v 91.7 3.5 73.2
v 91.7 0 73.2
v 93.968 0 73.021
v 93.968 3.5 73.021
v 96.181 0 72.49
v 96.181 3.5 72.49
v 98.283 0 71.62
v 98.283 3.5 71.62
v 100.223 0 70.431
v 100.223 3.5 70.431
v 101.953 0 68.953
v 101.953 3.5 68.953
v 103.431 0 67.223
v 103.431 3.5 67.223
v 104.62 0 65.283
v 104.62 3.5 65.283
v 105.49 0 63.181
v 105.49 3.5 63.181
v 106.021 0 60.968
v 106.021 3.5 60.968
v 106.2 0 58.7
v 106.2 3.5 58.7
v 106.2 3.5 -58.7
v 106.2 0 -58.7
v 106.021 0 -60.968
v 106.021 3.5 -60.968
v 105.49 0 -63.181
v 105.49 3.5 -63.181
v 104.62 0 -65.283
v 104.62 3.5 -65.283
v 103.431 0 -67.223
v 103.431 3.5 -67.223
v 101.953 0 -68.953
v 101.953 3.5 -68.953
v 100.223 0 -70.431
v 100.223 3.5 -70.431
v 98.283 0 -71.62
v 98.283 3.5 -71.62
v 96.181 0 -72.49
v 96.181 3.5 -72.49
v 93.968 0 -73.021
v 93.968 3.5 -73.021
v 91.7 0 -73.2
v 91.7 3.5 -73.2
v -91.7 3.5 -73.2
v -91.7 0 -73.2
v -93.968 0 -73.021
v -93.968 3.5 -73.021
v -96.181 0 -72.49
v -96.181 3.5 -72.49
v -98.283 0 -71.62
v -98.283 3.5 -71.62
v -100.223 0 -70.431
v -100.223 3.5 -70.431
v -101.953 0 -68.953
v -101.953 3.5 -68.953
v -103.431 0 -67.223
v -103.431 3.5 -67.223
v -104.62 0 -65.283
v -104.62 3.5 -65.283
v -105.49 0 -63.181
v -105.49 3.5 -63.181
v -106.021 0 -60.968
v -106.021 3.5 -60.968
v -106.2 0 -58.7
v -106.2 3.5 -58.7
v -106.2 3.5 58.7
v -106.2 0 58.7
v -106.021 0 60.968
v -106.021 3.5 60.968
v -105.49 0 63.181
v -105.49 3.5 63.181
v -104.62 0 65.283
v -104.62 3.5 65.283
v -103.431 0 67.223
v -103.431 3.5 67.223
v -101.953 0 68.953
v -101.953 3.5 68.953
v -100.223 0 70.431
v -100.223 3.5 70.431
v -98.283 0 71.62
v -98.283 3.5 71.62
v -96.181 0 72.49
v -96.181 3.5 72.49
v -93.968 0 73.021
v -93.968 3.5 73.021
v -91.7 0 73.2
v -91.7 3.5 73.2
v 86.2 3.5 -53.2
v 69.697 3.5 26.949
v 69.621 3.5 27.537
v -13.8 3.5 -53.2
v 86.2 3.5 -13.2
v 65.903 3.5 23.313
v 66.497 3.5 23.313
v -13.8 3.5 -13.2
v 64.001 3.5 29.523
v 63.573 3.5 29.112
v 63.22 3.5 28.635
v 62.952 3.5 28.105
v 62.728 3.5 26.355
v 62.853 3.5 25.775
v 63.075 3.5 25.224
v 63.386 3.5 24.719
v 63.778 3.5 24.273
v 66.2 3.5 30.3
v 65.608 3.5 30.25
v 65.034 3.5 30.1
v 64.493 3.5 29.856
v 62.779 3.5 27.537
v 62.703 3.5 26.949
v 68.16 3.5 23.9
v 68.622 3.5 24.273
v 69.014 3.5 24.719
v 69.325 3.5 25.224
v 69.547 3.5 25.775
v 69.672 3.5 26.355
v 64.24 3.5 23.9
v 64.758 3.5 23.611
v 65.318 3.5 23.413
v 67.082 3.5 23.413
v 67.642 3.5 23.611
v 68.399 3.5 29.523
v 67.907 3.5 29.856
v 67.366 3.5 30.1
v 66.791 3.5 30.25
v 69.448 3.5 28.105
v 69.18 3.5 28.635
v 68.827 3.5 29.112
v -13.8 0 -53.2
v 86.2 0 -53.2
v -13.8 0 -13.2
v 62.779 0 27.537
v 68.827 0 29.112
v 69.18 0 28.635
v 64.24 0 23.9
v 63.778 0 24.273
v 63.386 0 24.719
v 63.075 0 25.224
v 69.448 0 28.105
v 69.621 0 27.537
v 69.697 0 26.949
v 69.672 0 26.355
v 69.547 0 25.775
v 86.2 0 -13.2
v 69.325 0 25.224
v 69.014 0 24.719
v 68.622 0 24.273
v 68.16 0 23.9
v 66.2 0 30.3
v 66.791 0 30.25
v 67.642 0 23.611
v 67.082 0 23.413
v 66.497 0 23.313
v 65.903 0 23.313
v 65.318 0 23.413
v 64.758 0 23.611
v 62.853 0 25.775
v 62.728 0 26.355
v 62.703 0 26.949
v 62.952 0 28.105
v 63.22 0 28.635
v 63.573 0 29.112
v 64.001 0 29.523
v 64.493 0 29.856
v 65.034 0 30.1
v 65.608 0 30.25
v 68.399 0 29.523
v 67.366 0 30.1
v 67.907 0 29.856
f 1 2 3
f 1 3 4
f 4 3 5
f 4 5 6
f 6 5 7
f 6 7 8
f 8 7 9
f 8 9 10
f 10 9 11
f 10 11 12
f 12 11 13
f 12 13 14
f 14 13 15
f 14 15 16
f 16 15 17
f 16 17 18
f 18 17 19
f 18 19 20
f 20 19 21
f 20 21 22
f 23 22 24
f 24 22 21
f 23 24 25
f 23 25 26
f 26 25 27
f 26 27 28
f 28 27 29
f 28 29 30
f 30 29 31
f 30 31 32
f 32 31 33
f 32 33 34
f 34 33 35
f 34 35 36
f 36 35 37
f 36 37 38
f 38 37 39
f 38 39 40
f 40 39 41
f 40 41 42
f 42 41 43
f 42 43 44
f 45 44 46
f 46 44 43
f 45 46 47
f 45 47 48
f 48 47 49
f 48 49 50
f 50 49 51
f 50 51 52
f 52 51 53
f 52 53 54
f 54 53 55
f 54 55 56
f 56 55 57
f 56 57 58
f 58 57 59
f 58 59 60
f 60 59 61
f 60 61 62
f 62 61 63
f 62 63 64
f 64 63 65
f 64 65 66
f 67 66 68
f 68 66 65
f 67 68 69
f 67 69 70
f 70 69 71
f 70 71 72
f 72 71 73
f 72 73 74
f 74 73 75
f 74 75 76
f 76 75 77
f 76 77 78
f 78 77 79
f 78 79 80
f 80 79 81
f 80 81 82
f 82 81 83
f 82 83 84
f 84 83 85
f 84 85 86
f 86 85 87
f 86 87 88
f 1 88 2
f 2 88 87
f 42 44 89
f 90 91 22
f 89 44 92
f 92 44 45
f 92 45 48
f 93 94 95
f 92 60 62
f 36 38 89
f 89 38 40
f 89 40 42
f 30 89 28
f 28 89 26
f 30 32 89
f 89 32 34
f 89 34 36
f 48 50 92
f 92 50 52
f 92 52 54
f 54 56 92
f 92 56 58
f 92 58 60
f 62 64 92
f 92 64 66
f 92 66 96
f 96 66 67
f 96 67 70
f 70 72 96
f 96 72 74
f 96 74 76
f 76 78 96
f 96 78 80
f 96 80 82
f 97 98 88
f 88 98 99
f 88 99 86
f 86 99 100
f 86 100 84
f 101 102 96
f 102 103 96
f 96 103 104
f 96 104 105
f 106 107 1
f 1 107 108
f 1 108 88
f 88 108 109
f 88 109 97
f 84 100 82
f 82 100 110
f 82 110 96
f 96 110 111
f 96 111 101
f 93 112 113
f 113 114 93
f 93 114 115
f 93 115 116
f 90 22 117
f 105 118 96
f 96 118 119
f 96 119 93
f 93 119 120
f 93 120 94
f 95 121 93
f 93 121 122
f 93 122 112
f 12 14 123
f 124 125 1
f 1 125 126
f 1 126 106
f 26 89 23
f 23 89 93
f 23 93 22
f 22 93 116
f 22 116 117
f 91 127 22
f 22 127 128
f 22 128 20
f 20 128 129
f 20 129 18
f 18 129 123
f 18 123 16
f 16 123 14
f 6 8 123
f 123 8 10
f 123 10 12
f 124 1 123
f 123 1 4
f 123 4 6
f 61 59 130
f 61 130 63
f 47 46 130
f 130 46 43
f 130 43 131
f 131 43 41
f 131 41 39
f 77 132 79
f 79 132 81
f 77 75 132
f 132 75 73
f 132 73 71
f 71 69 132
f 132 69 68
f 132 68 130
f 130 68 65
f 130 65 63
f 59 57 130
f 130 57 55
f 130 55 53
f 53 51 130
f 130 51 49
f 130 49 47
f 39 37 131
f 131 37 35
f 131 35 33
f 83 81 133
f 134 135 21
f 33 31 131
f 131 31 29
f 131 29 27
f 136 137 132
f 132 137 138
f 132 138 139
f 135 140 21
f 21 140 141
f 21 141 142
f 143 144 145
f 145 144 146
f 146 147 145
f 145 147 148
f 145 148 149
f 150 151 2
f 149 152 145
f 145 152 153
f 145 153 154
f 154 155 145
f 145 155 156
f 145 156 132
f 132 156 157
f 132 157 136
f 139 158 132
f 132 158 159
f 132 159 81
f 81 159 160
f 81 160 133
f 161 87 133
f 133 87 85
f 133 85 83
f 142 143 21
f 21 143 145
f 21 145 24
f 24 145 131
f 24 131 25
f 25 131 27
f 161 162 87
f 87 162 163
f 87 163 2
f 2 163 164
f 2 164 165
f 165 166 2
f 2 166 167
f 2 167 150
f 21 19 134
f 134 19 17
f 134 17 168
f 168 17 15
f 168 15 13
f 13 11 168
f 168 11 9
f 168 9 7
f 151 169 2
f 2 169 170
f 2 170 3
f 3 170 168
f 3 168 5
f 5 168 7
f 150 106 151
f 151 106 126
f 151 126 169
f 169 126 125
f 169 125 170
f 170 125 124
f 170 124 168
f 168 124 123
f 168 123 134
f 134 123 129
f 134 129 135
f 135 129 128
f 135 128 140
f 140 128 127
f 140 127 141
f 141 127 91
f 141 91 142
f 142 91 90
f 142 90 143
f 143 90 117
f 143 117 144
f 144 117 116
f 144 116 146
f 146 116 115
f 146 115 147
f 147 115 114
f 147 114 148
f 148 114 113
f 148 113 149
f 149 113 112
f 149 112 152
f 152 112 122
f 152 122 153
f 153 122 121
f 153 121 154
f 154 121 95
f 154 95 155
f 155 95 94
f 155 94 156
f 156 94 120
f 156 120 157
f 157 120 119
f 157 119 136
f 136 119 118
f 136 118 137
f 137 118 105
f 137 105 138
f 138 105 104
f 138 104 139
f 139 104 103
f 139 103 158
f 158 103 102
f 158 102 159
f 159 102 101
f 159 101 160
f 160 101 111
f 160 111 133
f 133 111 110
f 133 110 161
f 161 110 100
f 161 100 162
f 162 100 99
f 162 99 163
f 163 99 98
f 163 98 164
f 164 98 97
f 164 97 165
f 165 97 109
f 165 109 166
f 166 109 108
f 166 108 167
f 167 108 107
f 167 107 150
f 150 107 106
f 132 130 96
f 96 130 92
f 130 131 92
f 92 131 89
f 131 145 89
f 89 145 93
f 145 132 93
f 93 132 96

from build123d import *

# Parameters (mm, degrees)
BOSS_EXTRUDE1_DEPTH = 3.5
SKETCH2_R           = 3.5
SKETCH2_W           = 100
SKETCH2_H           = 40
CUT_EXTRUDE1_DEPTH  = 3.5


with BuildPart() as part:
    # Sketch1 → Boss-Extrude1 (new body)
    with BuildSketch(Plane(origin=(0, 0, 0), x_dir=(1, 0, 0), z_dir=(0, 1, 0))):
        with BuildLine():
            Line((-91.7, 73.2), (91.7, 73.2))
            ThreePointArc((91.7, 73.2), (101.953048327, 68.953048327), (106.2, 58.7))
            Line((106.2, 58.7), (106.2, -58.7))
            ThreePointArc((106.2, -58.7), (101.953048327, -68.953048327), (91.7, -73.2))
            Line((91.7, -73.2), (-91.7, -73.2))
            ThreePointArc((-91.7, -73.2), (-101.953048327, -68.953048327), (-106.2, -58.7))
            Line((-106.2, -58.7), (-106.2, 58.7))
            ThreePointArc((-106.2, 58.7), (-101.953048327, 68.953048327), (-91.7, 73.2))
        make_face()
    extrude(amount=BOSS_EXTRUDE1_DEPTH)

    # Sketch2 → Cut-Extrude1 (cut)
    with BuildSketch(Plane(origin=(0, 3.5, 0), x_dir=(1, 0, 0), z_dir=(0, 1, 0))):
        with Locations(Location((66.2, -26.8, 0), (0, 0, 270))):
            Circle(SKETCH2_R)
        with Locations((36.2, 33.2)):
            Rectangle(SKETCH2_W, SKETCH2_H)
    extrude(amount=-CUT_EXTRUDE1_DEPTH, mode=Mode.SUBTRACT)


solid = part.part
